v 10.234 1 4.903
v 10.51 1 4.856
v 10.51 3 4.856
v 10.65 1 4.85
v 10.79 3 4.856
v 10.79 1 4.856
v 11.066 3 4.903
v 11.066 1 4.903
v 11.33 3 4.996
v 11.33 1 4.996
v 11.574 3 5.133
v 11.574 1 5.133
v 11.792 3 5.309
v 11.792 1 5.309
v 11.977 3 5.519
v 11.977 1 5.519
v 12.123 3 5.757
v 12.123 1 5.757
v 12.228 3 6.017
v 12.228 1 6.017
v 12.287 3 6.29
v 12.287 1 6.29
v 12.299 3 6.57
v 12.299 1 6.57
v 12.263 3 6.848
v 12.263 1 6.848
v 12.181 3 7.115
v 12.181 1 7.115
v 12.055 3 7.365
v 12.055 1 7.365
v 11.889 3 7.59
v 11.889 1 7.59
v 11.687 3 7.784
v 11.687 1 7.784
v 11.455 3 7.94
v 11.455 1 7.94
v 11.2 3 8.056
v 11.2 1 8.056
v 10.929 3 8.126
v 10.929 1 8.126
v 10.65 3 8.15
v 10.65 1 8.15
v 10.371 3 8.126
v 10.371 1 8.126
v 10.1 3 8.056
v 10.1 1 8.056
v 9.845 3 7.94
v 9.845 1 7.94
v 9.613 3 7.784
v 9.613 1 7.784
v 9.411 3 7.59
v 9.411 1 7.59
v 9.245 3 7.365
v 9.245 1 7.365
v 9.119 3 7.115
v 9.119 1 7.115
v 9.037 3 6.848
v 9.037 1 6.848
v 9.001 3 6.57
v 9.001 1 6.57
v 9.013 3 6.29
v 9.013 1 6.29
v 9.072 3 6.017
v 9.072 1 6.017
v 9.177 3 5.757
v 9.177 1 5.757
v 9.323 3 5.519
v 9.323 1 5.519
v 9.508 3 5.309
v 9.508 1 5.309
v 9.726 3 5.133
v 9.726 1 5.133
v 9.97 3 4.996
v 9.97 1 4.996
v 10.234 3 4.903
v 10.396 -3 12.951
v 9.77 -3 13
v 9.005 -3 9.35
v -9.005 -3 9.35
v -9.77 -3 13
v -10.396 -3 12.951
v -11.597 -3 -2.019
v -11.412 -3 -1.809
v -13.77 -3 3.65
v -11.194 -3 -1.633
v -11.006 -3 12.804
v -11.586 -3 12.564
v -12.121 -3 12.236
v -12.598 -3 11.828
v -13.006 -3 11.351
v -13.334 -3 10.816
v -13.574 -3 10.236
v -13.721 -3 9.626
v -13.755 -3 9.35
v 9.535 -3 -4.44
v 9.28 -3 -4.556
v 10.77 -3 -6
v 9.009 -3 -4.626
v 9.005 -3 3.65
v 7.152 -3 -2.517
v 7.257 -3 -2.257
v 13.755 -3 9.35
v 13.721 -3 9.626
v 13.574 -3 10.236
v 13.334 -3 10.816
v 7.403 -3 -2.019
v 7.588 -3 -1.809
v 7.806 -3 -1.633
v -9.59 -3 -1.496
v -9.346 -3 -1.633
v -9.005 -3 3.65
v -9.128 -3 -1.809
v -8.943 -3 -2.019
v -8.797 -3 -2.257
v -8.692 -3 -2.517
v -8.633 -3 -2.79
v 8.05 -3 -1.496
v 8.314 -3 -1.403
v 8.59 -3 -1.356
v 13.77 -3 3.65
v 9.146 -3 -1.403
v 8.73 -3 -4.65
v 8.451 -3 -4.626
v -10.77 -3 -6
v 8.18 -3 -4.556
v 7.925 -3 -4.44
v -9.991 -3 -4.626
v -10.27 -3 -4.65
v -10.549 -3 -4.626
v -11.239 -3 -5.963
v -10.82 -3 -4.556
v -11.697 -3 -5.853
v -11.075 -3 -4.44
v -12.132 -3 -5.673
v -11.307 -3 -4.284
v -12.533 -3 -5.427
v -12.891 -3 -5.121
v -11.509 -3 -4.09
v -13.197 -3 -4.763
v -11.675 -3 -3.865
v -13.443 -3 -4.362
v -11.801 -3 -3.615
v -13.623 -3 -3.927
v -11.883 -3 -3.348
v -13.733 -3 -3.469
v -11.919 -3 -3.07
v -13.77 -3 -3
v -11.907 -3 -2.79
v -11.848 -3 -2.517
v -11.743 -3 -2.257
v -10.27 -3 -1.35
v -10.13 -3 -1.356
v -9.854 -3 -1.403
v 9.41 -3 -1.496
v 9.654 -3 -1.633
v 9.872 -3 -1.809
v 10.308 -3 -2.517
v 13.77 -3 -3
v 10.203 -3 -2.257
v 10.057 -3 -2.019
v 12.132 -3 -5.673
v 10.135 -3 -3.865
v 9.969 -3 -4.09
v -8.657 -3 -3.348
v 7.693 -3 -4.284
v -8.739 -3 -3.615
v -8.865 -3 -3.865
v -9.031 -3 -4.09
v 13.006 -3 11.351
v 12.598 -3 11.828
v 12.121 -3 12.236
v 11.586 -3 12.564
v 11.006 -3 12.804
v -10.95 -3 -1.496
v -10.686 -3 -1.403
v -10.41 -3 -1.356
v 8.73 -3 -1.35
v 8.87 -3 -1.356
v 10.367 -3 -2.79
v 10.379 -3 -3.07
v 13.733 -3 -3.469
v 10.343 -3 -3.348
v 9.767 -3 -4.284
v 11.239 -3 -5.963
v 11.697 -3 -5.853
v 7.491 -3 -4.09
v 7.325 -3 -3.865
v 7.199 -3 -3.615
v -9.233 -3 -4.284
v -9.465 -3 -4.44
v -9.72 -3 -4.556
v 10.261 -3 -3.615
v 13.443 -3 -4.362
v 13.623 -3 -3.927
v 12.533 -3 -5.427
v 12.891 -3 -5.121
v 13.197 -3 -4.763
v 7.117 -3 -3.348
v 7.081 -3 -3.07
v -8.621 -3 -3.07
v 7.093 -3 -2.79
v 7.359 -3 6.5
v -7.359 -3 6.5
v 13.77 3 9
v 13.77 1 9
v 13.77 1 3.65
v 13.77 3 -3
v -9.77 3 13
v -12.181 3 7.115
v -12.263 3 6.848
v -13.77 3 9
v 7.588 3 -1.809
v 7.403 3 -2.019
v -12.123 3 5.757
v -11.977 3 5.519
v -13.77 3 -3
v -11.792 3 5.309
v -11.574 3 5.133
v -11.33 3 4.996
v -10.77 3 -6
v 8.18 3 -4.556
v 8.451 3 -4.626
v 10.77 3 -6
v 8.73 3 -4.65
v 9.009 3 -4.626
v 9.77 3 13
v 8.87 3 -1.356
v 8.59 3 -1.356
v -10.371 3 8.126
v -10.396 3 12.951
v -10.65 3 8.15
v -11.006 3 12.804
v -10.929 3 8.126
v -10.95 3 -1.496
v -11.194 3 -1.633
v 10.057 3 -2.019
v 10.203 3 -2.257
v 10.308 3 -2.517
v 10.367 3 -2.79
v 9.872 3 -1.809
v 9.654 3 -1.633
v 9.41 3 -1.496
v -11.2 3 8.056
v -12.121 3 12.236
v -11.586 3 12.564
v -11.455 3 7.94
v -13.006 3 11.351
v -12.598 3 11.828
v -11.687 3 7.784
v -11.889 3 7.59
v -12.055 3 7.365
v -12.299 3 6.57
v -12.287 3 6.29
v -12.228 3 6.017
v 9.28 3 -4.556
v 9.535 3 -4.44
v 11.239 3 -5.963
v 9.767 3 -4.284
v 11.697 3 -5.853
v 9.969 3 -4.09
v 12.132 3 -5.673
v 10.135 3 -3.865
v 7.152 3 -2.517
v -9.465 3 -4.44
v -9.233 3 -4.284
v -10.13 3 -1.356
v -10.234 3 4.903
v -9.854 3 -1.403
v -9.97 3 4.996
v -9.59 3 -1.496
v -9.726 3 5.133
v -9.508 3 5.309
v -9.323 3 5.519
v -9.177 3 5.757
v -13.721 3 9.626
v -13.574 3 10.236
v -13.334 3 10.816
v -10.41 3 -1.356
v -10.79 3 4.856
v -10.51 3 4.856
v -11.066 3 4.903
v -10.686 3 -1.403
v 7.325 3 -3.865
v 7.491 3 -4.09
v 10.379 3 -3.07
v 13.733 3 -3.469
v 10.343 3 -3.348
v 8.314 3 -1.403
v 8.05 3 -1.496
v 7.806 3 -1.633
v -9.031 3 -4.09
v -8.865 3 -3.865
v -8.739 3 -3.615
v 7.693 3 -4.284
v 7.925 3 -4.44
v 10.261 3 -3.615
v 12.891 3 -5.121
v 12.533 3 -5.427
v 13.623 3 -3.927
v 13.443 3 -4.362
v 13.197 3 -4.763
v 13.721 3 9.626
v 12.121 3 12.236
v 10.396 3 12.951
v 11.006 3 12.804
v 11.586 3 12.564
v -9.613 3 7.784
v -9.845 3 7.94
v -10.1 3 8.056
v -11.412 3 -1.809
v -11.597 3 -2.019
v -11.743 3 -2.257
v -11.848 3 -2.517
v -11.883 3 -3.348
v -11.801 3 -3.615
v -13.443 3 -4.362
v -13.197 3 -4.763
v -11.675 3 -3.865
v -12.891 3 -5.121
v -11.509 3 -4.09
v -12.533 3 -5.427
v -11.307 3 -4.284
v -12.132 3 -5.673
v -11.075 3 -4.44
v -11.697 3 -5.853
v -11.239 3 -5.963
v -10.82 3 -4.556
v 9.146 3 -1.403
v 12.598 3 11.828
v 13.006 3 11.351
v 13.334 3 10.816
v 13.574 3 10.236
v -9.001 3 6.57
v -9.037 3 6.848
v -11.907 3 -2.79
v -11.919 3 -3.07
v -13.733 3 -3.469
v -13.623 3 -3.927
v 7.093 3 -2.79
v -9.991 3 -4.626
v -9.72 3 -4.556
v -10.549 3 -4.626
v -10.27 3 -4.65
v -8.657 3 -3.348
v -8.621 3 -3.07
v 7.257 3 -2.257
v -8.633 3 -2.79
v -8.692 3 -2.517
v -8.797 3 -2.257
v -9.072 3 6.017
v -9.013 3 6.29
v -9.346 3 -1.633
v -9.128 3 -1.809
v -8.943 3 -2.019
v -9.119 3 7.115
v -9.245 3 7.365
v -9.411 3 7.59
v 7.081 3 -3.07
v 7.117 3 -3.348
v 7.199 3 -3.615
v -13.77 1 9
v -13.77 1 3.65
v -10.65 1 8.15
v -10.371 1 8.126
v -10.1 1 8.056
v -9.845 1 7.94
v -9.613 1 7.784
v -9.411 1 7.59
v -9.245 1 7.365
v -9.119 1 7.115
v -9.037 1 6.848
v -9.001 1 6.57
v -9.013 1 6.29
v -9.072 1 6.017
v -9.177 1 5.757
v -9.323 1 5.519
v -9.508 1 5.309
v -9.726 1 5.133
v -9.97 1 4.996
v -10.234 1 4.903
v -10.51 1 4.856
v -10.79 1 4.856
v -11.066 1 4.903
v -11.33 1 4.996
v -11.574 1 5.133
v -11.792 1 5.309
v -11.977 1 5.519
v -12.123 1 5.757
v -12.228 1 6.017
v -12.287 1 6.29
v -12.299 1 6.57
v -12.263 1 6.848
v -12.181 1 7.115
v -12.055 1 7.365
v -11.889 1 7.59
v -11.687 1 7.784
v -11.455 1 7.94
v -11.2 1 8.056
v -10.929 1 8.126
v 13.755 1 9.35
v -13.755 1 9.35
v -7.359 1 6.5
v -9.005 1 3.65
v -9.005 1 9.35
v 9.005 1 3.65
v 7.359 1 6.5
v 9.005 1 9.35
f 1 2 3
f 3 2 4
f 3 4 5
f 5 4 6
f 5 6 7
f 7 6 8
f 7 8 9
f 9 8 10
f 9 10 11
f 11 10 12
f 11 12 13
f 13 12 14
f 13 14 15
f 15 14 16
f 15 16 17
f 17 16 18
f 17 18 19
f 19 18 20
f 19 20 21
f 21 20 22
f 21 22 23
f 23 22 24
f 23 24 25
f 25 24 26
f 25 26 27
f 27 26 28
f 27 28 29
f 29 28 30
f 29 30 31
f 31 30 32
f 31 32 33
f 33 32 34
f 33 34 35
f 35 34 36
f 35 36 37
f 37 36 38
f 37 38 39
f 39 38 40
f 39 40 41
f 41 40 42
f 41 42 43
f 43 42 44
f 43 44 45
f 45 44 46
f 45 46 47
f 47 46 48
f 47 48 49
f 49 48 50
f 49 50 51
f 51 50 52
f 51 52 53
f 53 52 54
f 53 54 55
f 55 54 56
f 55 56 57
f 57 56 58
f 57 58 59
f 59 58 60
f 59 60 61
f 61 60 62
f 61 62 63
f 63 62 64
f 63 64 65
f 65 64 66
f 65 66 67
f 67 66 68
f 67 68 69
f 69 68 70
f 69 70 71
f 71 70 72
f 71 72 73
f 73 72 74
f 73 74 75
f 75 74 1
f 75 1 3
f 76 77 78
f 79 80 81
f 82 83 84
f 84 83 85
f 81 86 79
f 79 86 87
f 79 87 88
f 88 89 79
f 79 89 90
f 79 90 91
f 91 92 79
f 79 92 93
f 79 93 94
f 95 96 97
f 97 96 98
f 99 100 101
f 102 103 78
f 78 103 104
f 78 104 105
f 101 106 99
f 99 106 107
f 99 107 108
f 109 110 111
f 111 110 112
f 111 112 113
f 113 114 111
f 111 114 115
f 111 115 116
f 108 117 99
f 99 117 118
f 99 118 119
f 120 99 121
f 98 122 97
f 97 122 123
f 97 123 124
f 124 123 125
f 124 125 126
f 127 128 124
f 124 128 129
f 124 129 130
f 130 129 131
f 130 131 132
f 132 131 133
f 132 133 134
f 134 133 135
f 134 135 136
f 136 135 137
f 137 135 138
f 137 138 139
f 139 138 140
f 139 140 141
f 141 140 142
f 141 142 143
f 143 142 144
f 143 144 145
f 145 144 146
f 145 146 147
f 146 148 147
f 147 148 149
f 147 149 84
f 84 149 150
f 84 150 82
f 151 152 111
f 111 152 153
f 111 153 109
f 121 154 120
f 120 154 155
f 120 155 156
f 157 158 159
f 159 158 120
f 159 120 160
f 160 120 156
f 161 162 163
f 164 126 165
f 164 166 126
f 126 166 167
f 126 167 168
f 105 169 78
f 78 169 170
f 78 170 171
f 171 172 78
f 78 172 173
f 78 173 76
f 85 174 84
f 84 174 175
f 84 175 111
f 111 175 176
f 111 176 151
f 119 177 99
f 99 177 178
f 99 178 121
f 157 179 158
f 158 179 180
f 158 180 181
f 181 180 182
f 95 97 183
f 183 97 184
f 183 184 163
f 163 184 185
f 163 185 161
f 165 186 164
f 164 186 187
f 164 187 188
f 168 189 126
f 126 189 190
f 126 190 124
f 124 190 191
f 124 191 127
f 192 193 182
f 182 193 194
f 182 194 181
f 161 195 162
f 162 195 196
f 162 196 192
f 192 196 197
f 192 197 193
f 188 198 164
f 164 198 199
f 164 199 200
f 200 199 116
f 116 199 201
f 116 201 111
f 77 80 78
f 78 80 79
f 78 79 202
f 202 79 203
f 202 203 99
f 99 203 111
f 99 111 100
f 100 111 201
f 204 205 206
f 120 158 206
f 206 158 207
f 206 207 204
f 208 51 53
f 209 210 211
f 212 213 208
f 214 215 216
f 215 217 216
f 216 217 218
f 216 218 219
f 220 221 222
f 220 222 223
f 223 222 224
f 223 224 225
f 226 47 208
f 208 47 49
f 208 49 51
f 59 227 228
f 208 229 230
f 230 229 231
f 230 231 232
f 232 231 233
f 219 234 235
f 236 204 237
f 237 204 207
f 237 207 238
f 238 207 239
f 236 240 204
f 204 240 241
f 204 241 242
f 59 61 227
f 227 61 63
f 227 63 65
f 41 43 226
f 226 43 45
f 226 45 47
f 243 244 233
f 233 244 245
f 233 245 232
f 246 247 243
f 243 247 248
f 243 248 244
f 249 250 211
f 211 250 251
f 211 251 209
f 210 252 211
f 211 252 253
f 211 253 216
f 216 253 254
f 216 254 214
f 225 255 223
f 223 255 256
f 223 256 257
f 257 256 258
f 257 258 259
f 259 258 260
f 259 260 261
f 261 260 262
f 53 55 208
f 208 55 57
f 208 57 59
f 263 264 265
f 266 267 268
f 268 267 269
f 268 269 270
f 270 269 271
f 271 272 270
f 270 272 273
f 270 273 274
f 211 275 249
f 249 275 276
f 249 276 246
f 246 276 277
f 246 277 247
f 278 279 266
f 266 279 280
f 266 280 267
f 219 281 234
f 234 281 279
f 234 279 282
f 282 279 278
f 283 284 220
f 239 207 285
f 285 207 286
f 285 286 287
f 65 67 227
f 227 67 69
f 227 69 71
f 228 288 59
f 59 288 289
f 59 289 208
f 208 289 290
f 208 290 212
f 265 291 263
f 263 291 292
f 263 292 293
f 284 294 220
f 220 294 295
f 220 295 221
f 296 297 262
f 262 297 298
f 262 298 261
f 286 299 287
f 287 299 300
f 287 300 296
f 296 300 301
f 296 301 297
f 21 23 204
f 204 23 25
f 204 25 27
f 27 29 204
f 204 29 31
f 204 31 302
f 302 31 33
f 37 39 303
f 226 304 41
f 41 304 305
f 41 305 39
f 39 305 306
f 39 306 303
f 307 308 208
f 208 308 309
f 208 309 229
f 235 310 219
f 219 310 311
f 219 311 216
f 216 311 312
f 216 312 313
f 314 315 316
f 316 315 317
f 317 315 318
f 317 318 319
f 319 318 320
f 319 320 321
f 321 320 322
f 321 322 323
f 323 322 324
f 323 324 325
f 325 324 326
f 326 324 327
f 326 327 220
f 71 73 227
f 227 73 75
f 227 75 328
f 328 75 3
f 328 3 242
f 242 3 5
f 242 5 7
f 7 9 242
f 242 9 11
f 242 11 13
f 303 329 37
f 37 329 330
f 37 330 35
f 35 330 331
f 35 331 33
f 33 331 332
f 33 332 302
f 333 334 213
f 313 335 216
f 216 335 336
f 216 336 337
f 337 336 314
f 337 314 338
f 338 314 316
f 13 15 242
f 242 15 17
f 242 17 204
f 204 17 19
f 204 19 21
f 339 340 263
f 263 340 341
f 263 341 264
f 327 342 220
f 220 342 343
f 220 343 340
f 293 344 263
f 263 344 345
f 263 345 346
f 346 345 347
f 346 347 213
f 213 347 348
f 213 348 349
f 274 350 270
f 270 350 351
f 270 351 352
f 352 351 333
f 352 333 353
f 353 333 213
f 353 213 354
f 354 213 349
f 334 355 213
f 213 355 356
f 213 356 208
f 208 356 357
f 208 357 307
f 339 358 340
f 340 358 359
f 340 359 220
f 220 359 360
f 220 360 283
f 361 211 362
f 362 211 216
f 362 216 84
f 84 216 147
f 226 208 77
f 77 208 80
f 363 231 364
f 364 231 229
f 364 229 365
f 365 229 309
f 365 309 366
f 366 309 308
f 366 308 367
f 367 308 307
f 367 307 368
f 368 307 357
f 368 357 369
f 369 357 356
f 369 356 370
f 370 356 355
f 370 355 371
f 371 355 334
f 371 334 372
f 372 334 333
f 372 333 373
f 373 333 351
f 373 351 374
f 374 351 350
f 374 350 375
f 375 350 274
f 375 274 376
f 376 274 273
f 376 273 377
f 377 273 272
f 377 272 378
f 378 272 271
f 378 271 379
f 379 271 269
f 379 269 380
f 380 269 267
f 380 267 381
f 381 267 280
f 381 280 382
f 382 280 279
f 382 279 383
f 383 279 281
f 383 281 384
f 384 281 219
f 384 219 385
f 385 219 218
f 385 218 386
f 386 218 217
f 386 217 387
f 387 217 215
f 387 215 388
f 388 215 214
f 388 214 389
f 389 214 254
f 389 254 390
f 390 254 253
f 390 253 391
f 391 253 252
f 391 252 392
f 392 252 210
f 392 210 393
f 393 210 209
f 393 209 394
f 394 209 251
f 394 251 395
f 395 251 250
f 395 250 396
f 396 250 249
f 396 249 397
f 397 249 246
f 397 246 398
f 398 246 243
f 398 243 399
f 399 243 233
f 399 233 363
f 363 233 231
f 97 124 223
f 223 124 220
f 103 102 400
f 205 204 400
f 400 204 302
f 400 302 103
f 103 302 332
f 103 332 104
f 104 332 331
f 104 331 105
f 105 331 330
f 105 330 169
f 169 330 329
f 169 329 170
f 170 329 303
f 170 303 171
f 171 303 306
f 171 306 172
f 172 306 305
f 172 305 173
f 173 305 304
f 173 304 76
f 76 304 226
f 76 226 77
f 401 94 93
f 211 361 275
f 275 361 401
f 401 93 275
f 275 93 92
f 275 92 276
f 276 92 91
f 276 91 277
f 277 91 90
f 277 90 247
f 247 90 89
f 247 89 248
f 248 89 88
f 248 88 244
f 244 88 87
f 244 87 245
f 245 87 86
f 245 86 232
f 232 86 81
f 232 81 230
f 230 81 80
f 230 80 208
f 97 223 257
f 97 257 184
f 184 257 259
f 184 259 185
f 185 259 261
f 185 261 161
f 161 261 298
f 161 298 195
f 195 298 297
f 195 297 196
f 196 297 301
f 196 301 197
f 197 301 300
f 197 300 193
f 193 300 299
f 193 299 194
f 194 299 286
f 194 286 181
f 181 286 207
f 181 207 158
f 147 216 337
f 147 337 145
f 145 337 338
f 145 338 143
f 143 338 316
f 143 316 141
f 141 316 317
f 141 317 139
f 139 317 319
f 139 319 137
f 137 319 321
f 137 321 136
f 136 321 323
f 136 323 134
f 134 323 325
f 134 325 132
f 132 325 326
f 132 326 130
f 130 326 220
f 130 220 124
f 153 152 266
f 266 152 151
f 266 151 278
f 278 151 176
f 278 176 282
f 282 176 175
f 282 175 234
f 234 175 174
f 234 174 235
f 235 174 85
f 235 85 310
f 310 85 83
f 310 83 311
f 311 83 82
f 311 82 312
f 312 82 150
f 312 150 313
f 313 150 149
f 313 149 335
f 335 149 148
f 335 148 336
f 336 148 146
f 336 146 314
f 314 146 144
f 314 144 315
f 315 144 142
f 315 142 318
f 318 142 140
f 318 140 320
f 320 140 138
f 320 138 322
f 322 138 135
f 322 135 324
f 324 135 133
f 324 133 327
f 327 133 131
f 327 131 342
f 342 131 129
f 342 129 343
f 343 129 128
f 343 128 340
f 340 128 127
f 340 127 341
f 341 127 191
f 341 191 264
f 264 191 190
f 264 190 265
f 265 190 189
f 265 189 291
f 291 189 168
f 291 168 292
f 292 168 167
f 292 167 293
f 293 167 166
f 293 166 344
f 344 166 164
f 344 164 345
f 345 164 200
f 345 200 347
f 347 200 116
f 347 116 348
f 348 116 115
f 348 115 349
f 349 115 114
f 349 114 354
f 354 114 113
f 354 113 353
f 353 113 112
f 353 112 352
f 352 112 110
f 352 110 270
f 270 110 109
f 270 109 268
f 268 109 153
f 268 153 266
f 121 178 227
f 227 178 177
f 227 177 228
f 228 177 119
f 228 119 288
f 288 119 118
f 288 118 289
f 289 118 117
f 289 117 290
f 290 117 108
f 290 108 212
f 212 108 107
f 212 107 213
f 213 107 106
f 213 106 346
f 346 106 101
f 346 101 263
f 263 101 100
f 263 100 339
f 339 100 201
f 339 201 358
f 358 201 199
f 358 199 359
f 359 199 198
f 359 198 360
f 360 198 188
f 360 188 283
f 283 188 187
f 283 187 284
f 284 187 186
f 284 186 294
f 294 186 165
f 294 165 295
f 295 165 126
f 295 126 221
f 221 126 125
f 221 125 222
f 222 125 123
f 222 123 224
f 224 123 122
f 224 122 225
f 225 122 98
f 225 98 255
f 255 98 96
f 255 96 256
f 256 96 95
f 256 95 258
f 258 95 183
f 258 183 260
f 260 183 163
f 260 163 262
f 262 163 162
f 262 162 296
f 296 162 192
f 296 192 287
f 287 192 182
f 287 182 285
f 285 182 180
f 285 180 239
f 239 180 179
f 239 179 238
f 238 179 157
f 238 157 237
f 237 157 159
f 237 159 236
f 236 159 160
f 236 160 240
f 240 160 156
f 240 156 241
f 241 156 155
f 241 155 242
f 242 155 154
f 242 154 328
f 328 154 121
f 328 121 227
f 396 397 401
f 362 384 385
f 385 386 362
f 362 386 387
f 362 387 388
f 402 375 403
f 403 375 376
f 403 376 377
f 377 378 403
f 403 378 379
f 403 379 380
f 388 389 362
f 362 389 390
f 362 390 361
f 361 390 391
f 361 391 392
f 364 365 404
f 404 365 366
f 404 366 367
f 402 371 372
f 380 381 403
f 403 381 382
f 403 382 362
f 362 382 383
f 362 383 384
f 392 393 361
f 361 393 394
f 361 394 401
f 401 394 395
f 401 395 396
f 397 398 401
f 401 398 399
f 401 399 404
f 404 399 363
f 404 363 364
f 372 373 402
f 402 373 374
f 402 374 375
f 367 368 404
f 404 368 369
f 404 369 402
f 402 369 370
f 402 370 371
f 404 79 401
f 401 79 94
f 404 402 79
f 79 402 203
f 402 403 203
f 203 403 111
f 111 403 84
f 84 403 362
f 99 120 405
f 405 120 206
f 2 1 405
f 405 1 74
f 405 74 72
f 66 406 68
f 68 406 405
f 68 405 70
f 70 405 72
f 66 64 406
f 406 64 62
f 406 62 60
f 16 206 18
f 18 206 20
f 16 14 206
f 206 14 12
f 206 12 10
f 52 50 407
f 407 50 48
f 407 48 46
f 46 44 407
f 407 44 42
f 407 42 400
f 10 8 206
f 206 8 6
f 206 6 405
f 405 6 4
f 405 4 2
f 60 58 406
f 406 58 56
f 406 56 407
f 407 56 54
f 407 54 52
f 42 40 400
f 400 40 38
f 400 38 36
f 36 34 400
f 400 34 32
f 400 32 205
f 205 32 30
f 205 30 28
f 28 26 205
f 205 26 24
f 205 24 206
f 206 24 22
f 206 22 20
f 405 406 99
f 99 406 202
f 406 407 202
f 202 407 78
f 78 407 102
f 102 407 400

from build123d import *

# Parameters (mm, degrees)
SKETCH1_W               = 27.54
SKETCH1_H               = 6
BOSS_EXTRUDE1_DEPTH     = 13
SKETCH2_R               = 1.65
CUT_EXTRUDE1_DEPTH      = 20.86486597
SKETCH4_W               = 27.54
SKETCH4_H               = 6
BOSS_EXTRUDE2_DEPTH     = 6
FILLET1_R               = 4
FILLET2_R               = 3
CUT_EXTRUDE2_DEPTH      = 20.86486597
CUT_EXTRUDE2_DEPTH_BACK = 20.86486597
SKETCH3_R               = 1.65
CUT_EXTRUDE3_DEPTH      = 4


with BuildPart() as part:
    # Sketch1 → Boss-Extrude1 (new body)
    with BuildSketch(Plane.XY):
        Rectangle(SKETCH1_W, SKETCH1_H)
    extrude(amount=BOSS_EXTRUDE1_DEPTH)

    # Sketch2 → Cut-Extrude1 (cut, through all)
    with BuildSketch(Plane(origin=(0, 3, 0), x_dir=(1, 0, 0), z_dir=(0, 1, 0))):
        with Locations(Location((-10.65, -6.5, 0), (0, 0, 270))):
            Circle(SKETCH2_R)
        with Locations(Location((10.65, -6.5, 0), (0, 0, 270))):
            Circle(SKETCH2_R)
    extrude(amount=-CUT_EXTRUDE1_DEPTH, mode=Mode.SUBTRACT)

    # Sketch4 → Boss-Extrude2 (add)
    with BuildSketch(Plane(origin=(0, 0, 0), x_dir=(-1, 0, 0), z_dir=(0, 0, -1))):
        Rectangle(SKETCH4_W, SKETCH4_H)
    extrude(amount=BOSS_EXTRUDE2_DEPTH)

    # Fillet1
    fillet1_edges = [part.edges().sort_by_distance(p)[0] for p in [
        (-13.77, 0, 13),
        (13.77, 0, 13),
    ]]
    fillet(fillet1_edges, radius=FILLET1_R)

    # Fillet2
    fillet2_edges = [part.edges().sort_by_distance(p)[0] for p in [
        (13.77, 0, -6),
        (-13.77, 0, -6),
    ]]
    fillet(fillet2_edges, radius=FILLET2_R)

    # Sketch3 → Cut-Extrude2 (cut, two sides: drawn at the far end of the back side and taken through both)
    with BuildSketch(Plane.XZ.offset(3).offset(-CUT_EXTRUDE2_DEPTH_BACK)):
        with Locations(Location((8.73, -3, 0), (0, 0, 270))):
            Circle(SKETCH3_R)
        with Locations(Location((-10.27, -3, 0), (0, 0, 270))):
            Circle(SKETCH3_R)
    extrude(amount=CUT_EXTRUDE2_DEPTH + CUT_EXTRUDE2_DEPTH_BACK, mode=Mode.SUBTRACT)

    # Sketch6 → Cut-Extrude3 (cut)
    with BuildSketch(Plane.XZ.offset(3)):
        Polygon((12.295448267, 9.35), (15.295448267, 9.35), (15.295448267, 3.65), (12.295448267, 3.65), (9.004551733, 3.65), (7.359103466, 6.5), (9.004551733, 9.35), align=None)
        Polygon((-12.295448267, 3.65), (-9.004551733, 3.65), (-7.359103466, 6.5), (-9.004551733, 9.35), (-12.295448267, 9.35), (-15.295448267, 9.35), (-15.295448267, 3.65), align=None)
    extrude(amount=-CUT_EXTRUDE3_DEPTH, mode=Mode.SUBTRACT)


solid = part.part
